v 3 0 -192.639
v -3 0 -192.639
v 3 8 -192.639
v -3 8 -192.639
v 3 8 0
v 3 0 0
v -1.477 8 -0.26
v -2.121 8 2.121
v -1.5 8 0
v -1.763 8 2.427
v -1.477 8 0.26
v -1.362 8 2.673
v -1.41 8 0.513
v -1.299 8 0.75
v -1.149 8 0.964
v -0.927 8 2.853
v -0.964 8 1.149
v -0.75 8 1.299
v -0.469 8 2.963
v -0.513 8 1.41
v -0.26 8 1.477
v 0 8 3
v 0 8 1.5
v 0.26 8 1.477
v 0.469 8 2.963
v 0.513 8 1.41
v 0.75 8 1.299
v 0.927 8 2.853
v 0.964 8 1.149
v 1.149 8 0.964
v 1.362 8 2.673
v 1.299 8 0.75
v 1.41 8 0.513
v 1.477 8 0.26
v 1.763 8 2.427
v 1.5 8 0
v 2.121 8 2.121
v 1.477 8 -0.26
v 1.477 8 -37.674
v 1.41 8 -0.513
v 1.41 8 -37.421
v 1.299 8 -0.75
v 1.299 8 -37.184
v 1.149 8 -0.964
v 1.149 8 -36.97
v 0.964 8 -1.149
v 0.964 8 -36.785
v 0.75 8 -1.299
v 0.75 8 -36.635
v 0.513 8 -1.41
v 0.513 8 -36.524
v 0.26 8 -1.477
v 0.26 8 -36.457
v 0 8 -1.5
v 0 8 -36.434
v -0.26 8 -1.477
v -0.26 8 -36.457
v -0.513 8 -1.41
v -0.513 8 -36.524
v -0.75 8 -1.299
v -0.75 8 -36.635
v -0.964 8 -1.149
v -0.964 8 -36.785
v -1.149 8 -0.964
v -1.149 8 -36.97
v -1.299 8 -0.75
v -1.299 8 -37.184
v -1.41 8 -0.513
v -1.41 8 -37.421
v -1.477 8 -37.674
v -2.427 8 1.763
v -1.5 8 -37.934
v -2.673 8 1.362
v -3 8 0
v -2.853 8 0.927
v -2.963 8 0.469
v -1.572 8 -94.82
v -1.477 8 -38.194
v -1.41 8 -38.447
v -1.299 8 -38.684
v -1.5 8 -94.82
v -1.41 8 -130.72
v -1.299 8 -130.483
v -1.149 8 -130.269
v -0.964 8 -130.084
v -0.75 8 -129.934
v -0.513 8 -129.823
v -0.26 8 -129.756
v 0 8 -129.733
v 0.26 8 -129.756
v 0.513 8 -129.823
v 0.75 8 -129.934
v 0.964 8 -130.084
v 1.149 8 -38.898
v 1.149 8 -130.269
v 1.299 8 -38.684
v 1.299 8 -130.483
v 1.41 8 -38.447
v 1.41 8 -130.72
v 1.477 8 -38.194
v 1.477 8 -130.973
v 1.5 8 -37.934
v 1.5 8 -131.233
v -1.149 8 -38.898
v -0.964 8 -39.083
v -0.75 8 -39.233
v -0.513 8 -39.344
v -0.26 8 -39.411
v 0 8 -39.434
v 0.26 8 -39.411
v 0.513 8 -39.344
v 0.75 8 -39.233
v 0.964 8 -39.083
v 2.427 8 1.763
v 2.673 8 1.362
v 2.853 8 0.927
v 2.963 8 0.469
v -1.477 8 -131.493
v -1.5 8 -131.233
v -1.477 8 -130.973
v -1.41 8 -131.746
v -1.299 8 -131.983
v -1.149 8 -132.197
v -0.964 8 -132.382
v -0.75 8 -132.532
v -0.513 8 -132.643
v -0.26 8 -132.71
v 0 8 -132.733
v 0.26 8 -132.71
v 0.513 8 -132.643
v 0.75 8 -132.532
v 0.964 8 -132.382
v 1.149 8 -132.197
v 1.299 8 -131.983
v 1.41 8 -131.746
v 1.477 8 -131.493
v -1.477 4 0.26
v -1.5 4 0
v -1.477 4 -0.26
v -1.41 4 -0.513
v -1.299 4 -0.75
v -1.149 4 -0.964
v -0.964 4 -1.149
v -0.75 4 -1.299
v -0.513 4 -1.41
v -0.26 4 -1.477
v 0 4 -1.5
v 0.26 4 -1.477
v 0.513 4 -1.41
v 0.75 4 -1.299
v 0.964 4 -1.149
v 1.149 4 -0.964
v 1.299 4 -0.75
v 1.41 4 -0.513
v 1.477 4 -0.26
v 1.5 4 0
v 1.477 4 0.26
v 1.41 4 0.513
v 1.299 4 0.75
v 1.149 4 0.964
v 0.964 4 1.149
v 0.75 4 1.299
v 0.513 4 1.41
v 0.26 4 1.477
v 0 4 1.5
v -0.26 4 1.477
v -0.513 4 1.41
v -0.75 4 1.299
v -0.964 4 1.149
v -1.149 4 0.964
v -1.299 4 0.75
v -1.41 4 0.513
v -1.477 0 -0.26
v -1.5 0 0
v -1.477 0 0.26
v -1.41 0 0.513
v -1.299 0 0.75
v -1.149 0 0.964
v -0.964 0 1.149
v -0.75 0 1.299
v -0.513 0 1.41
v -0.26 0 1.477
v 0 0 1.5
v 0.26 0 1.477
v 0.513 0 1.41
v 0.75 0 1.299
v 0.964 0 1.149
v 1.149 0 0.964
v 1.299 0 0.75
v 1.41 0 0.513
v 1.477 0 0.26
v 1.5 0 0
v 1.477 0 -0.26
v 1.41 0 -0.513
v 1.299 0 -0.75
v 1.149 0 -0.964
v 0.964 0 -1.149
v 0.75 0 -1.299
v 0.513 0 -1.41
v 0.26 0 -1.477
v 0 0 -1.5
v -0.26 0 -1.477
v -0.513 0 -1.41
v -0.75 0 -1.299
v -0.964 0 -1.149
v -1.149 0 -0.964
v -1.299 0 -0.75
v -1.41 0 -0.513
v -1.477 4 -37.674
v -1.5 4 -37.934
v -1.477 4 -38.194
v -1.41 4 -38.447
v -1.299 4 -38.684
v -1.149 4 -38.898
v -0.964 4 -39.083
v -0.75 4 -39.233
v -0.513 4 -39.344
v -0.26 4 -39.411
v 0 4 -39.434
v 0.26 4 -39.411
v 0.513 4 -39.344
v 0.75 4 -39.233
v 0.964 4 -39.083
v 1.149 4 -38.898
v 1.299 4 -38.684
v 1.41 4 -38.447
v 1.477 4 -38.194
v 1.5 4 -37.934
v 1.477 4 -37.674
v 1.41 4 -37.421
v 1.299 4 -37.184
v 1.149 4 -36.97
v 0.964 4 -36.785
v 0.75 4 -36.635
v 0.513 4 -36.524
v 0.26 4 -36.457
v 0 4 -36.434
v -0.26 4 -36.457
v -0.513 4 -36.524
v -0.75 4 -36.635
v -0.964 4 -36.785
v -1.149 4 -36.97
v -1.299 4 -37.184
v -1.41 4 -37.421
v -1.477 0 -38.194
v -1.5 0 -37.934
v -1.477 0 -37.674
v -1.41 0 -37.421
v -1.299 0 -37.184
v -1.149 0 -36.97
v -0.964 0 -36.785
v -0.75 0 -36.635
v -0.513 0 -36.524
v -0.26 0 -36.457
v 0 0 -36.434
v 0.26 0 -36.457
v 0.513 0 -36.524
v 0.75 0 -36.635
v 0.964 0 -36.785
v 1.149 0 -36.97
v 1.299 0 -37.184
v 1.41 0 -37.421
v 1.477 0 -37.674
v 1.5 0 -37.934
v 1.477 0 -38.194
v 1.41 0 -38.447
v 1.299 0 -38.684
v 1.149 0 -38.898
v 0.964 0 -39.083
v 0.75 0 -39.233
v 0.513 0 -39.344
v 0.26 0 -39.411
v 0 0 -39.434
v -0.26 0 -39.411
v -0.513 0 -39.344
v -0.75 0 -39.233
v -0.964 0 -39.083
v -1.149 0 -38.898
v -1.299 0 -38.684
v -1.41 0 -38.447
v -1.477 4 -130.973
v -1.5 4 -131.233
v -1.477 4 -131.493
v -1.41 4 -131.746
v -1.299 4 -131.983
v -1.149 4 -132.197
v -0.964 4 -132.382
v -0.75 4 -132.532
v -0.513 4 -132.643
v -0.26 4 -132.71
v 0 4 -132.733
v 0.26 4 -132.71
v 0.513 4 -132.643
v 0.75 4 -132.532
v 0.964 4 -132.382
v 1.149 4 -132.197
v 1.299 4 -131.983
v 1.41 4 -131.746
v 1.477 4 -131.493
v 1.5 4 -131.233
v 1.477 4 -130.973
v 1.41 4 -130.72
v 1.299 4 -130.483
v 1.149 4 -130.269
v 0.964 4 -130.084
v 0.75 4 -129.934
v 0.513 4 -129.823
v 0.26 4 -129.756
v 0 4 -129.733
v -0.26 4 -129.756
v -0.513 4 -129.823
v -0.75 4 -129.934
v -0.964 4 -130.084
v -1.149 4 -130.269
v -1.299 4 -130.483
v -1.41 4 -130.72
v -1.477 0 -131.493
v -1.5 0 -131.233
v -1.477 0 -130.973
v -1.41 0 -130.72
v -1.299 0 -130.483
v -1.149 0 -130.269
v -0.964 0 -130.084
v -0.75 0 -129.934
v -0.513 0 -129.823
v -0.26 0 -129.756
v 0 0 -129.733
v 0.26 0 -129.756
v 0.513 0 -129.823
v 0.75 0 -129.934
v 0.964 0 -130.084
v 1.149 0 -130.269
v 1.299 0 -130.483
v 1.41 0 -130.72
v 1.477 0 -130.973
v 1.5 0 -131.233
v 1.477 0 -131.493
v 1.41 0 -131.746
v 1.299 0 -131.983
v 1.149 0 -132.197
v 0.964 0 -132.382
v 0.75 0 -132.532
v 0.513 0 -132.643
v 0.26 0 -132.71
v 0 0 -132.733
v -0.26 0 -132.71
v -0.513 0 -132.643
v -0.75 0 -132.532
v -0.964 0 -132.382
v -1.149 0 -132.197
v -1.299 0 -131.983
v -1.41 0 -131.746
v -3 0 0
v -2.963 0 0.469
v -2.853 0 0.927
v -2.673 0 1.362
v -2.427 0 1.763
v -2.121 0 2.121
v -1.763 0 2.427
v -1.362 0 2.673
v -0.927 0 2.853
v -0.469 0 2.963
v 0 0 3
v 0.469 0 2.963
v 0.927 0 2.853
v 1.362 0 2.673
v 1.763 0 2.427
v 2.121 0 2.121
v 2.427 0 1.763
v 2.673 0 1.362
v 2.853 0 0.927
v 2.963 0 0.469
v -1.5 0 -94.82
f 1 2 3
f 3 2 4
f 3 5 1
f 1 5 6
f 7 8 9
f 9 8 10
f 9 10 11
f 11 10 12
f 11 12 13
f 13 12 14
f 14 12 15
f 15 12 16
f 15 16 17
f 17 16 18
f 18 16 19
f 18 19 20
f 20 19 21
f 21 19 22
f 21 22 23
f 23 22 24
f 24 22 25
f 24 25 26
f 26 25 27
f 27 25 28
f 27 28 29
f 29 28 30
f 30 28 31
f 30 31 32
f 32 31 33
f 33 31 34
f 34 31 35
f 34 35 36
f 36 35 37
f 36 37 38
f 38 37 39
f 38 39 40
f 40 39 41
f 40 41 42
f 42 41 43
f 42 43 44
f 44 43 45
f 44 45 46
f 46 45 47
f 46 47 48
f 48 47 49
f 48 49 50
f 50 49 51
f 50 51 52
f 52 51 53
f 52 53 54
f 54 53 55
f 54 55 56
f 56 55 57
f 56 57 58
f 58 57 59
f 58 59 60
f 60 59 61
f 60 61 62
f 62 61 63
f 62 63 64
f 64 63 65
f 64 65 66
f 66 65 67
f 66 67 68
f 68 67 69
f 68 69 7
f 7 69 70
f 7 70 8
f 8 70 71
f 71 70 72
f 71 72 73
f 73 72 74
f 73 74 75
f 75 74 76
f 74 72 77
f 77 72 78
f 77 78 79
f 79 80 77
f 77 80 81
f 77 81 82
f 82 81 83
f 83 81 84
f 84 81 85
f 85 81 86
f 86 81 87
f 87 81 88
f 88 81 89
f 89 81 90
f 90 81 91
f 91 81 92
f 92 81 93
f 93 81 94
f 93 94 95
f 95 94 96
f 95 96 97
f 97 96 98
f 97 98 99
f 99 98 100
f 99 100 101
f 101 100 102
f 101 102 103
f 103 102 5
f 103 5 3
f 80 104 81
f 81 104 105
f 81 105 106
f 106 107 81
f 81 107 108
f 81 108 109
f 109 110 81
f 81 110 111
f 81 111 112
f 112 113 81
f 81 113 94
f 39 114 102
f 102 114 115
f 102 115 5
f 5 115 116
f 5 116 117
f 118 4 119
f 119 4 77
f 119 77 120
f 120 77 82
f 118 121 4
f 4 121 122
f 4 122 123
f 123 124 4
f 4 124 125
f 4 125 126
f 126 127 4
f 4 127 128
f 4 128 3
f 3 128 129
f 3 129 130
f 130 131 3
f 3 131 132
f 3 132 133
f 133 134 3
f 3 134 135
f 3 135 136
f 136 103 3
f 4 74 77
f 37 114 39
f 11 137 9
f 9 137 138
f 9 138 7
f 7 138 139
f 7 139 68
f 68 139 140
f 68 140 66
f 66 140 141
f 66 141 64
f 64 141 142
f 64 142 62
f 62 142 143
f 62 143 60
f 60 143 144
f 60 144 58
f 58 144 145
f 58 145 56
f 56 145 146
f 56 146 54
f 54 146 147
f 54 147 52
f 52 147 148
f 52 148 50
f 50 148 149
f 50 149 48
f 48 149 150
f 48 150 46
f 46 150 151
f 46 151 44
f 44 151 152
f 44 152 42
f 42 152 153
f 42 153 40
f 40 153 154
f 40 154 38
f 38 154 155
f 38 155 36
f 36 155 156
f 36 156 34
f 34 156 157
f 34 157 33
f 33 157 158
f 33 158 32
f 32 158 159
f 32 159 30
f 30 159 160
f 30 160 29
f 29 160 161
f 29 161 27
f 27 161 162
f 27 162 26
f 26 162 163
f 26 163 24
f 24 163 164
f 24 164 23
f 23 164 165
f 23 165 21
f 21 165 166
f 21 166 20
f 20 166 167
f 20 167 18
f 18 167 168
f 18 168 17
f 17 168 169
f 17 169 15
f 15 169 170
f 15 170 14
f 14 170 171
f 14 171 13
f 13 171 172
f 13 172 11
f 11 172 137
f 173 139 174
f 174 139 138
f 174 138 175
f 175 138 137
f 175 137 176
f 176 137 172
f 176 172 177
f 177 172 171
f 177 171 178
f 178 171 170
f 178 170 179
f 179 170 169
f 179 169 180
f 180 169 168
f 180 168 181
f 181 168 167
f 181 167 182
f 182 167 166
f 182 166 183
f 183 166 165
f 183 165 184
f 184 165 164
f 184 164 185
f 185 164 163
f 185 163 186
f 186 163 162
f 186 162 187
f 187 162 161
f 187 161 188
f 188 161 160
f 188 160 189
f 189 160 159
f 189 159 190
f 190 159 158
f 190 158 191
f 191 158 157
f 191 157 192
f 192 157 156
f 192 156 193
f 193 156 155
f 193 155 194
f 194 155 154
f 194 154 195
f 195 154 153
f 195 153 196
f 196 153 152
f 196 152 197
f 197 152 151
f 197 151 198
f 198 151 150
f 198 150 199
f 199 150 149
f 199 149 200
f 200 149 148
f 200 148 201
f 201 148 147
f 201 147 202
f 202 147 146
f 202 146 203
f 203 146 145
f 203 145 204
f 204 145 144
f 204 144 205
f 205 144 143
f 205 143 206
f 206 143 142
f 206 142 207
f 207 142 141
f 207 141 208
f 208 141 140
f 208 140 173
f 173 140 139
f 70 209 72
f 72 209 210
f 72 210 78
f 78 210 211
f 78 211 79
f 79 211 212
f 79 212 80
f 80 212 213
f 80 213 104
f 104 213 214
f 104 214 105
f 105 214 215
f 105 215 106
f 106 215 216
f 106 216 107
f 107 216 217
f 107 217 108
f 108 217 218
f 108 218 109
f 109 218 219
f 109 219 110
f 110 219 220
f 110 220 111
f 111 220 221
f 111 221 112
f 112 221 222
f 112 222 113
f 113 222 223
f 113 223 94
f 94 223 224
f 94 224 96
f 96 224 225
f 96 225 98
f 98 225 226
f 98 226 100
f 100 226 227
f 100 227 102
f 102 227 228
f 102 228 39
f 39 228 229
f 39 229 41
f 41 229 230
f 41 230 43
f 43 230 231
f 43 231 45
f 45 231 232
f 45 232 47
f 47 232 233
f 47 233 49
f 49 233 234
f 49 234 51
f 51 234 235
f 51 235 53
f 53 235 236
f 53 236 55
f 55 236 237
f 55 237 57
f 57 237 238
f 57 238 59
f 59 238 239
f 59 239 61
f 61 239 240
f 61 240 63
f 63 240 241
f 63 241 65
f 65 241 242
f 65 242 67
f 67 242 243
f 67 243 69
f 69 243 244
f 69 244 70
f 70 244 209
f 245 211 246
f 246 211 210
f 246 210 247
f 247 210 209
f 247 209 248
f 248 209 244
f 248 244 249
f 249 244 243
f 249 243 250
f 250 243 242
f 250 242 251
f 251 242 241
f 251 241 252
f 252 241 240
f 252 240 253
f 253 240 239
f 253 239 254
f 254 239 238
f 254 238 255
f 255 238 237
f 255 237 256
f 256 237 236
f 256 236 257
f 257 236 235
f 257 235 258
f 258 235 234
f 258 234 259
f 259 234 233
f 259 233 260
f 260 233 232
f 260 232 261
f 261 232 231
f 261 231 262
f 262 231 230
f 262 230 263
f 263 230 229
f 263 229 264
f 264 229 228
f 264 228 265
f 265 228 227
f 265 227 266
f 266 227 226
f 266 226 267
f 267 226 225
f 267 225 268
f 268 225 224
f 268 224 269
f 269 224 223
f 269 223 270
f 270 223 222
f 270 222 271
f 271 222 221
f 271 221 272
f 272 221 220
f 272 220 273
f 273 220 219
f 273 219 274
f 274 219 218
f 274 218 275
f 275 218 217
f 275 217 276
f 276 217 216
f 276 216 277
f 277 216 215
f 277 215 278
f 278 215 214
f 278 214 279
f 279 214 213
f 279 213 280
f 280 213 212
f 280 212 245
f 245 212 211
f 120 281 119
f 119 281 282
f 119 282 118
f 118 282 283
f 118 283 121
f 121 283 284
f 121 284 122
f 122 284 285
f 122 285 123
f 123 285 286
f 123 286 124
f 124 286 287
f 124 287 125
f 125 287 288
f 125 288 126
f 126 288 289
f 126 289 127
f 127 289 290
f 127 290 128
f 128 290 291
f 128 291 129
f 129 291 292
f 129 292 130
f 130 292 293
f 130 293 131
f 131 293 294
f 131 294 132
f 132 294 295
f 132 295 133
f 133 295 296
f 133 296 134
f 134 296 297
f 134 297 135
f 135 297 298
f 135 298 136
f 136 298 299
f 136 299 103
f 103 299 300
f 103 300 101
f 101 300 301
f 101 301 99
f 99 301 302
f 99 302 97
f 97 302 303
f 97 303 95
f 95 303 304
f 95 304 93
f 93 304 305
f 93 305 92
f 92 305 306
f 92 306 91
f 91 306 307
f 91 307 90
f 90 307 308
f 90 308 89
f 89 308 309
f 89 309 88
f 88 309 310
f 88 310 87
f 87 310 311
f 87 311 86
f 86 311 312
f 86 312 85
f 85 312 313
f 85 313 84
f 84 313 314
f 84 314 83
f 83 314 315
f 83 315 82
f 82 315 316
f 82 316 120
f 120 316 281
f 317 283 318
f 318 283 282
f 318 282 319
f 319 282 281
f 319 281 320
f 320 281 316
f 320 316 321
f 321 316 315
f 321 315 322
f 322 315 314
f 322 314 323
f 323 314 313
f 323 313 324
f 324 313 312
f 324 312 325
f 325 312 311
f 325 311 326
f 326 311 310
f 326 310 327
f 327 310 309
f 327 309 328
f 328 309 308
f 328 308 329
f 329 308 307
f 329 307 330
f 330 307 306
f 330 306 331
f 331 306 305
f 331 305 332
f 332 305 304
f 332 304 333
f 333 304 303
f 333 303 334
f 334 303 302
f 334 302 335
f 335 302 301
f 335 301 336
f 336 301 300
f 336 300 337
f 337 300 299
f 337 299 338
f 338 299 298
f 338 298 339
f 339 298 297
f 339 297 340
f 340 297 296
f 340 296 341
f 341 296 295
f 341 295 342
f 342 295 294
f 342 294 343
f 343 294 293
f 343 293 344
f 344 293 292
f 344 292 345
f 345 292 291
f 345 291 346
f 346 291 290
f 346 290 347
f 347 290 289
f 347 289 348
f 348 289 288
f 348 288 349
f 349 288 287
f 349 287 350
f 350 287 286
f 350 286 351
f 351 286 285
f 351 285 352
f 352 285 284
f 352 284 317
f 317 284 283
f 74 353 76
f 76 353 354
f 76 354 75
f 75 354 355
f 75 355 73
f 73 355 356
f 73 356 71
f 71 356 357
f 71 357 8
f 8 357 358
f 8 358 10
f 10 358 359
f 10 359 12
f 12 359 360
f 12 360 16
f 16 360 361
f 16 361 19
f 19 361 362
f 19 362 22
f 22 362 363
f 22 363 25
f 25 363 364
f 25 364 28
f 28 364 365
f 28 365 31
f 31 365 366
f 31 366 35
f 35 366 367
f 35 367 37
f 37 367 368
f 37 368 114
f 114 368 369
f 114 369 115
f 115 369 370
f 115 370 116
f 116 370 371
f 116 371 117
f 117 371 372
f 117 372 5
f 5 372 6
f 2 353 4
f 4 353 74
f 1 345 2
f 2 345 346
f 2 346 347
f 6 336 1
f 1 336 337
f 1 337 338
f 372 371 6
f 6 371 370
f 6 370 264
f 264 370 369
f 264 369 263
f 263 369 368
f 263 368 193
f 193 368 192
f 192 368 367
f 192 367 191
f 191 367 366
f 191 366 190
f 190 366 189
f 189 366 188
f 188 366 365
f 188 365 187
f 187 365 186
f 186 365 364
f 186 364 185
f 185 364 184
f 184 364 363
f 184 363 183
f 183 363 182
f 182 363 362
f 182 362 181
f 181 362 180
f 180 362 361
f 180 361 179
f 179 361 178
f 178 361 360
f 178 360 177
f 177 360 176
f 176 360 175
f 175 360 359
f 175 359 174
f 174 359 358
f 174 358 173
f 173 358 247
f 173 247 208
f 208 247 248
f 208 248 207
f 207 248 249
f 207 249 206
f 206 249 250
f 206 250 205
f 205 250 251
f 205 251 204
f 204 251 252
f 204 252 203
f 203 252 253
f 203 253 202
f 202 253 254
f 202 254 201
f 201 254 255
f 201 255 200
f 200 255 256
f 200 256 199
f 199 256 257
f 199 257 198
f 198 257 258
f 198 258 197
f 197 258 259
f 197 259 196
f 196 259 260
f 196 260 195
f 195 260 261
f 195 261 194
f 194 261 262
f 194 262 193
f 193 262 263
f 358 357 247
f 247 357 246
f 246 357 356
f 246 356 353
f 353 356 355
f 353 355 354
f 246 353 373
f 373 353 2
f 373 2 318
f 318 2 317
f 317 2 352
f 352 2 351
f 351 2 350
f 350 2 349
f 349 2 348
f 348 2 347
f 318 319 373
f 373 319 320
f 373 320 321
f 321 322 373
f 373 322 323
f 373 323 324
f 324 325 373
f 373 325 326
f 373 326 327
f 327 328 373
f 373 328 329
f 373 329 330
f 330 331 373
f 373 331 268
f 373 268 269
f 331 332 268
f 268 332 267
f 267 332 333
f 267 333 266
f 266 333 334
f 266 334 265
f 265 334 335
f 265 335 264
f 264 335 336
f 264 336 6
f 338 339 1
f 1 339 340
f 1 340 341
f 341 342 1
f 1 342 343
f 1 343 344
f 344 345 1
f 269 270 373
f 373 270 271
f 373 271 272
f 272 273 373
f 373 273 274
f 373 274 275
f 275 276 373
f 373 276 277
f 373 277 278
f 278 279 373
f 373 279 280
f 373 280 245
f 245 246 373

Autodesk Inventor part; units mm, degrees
ref_plane "YZ Plane" through (0, 0, 0) normal (1, 0, 0) x (0, 1, 0)
ref_plane "XZ Plane" through (0, 0, 0) normal (0, 1, 0) x (-1, 0, 0)
ref_plane "XY Plane" through (0, 0, 0) normal (0, 0, 1) x (1, 0, 0)
sketch "Sketch1" plane through (0, 0, 0) normal (0, 1, 0) x (-1, 0, 0)
  line L0 (0, 0) -> (0, -347.765) construction
  line L1 (-3, 0) -> (-3, -347.765)
  line L2 (3, -347.765) -> (3, 0)
  arc A0 (3, 0) -> (-3, 0) centre (0, 0) ccw
  arc A1 (-3, -347.765) -> (3, -347.765) centre (0, -347.765) ccw
  circle A2 centre (0, 0) radius 1.5
  circle A3 centre (0, -347.765) radius 1.5
  circle A4 centre (0, -131.233) radius 1.5
  circle A5 centre (0, -37.934) radius 1.5
  point P0 (0, -173.8825)
  dimension "d0" = 347.765
  dimension "d1" = 6
  dimension "d2" = 3
  dimension "d3" = 3
  dimension "d6" = 3
  dimension "d7" = 131.233
  dimension "d8" = 3
  dimension "d9" = 37.934
extrude "Extrusion1" add sketch "Sketch1" along normal blind 8
sketch "Sketch2" plane through (0, 8, 0) normal (0, 1, 0) x (1, 0, 0)
  arc A0 (3, 347.765) -> (-3, 347.765) centre (0, 347.765) ccw projected
  line L0 (-3, 347.765) -> (-3, 0) projected
  arc A1 (-3, 0) -> (3, 0) centre (0, 0) ccw projected
  line L1 (3, 0) -> (3, 347.765) projected
  circle A2 centre (0, 131.233) radius 1.5 projected
  circle A3 centre (0, 37.934) radius 1.5 projected
  circle A4 centre (0, 347.765) radius 1.5 projected
  circle A5 centre (0, 0) radius 1.5 projected
sketch "Sketch3" plane through (0, 8, 0) normal (0, 1, 0) x (1, 0, 0)
  line L0 (-13.5041, 192.6393) -> (33.2898, 192.6393)
  line L1 (33.2898, 192.6393) -> (33.2898, -23.3325)
  line L2 (33.2898, -23.3325) -> (-13.5041, -23.3325)
  line L3 (-13.5041, -23.3325) -> (-13.5041, 192.6393)
  line L4 (-64.7974, 383.8644) -> (82.7834, 383.8644)
  line L5 (82.7834, 383.8644) -> (82.7834, -81.8249)
  line L6 (82.7834, -81.8249) -> (-64.7974, -81.8249)
  line L7 (-64.7974, -81.8249) -> (-64.7974, 383.8644)
  point P0 (0, 0)
extrude "Extrusion2" cut sketch "Sketch3" against normal blind 10
sketch "Sketch4" plane through (0, 8, 0) normal (0, 1, 0) x (1, 0, 0)
  circle A0 centre (0, 0) radius 1.5 projected
  circle A1 centre (0, 37.934) radius 1.5 projected
  circle A2 centre (0, 131.233) radius 1.5 projected
  line L0 (3, 192.6393) -> (-3, 192.6393) projected
  line L1 (-3, 192.6393) -> (-3, 0) projected
  arc A3 (-3, 0) -> (3, 0) centre (0, 0) ccw projected
  line L2 (3, 0) -> (3, 192.6393) projected
properties part number "Part_10_p2"
